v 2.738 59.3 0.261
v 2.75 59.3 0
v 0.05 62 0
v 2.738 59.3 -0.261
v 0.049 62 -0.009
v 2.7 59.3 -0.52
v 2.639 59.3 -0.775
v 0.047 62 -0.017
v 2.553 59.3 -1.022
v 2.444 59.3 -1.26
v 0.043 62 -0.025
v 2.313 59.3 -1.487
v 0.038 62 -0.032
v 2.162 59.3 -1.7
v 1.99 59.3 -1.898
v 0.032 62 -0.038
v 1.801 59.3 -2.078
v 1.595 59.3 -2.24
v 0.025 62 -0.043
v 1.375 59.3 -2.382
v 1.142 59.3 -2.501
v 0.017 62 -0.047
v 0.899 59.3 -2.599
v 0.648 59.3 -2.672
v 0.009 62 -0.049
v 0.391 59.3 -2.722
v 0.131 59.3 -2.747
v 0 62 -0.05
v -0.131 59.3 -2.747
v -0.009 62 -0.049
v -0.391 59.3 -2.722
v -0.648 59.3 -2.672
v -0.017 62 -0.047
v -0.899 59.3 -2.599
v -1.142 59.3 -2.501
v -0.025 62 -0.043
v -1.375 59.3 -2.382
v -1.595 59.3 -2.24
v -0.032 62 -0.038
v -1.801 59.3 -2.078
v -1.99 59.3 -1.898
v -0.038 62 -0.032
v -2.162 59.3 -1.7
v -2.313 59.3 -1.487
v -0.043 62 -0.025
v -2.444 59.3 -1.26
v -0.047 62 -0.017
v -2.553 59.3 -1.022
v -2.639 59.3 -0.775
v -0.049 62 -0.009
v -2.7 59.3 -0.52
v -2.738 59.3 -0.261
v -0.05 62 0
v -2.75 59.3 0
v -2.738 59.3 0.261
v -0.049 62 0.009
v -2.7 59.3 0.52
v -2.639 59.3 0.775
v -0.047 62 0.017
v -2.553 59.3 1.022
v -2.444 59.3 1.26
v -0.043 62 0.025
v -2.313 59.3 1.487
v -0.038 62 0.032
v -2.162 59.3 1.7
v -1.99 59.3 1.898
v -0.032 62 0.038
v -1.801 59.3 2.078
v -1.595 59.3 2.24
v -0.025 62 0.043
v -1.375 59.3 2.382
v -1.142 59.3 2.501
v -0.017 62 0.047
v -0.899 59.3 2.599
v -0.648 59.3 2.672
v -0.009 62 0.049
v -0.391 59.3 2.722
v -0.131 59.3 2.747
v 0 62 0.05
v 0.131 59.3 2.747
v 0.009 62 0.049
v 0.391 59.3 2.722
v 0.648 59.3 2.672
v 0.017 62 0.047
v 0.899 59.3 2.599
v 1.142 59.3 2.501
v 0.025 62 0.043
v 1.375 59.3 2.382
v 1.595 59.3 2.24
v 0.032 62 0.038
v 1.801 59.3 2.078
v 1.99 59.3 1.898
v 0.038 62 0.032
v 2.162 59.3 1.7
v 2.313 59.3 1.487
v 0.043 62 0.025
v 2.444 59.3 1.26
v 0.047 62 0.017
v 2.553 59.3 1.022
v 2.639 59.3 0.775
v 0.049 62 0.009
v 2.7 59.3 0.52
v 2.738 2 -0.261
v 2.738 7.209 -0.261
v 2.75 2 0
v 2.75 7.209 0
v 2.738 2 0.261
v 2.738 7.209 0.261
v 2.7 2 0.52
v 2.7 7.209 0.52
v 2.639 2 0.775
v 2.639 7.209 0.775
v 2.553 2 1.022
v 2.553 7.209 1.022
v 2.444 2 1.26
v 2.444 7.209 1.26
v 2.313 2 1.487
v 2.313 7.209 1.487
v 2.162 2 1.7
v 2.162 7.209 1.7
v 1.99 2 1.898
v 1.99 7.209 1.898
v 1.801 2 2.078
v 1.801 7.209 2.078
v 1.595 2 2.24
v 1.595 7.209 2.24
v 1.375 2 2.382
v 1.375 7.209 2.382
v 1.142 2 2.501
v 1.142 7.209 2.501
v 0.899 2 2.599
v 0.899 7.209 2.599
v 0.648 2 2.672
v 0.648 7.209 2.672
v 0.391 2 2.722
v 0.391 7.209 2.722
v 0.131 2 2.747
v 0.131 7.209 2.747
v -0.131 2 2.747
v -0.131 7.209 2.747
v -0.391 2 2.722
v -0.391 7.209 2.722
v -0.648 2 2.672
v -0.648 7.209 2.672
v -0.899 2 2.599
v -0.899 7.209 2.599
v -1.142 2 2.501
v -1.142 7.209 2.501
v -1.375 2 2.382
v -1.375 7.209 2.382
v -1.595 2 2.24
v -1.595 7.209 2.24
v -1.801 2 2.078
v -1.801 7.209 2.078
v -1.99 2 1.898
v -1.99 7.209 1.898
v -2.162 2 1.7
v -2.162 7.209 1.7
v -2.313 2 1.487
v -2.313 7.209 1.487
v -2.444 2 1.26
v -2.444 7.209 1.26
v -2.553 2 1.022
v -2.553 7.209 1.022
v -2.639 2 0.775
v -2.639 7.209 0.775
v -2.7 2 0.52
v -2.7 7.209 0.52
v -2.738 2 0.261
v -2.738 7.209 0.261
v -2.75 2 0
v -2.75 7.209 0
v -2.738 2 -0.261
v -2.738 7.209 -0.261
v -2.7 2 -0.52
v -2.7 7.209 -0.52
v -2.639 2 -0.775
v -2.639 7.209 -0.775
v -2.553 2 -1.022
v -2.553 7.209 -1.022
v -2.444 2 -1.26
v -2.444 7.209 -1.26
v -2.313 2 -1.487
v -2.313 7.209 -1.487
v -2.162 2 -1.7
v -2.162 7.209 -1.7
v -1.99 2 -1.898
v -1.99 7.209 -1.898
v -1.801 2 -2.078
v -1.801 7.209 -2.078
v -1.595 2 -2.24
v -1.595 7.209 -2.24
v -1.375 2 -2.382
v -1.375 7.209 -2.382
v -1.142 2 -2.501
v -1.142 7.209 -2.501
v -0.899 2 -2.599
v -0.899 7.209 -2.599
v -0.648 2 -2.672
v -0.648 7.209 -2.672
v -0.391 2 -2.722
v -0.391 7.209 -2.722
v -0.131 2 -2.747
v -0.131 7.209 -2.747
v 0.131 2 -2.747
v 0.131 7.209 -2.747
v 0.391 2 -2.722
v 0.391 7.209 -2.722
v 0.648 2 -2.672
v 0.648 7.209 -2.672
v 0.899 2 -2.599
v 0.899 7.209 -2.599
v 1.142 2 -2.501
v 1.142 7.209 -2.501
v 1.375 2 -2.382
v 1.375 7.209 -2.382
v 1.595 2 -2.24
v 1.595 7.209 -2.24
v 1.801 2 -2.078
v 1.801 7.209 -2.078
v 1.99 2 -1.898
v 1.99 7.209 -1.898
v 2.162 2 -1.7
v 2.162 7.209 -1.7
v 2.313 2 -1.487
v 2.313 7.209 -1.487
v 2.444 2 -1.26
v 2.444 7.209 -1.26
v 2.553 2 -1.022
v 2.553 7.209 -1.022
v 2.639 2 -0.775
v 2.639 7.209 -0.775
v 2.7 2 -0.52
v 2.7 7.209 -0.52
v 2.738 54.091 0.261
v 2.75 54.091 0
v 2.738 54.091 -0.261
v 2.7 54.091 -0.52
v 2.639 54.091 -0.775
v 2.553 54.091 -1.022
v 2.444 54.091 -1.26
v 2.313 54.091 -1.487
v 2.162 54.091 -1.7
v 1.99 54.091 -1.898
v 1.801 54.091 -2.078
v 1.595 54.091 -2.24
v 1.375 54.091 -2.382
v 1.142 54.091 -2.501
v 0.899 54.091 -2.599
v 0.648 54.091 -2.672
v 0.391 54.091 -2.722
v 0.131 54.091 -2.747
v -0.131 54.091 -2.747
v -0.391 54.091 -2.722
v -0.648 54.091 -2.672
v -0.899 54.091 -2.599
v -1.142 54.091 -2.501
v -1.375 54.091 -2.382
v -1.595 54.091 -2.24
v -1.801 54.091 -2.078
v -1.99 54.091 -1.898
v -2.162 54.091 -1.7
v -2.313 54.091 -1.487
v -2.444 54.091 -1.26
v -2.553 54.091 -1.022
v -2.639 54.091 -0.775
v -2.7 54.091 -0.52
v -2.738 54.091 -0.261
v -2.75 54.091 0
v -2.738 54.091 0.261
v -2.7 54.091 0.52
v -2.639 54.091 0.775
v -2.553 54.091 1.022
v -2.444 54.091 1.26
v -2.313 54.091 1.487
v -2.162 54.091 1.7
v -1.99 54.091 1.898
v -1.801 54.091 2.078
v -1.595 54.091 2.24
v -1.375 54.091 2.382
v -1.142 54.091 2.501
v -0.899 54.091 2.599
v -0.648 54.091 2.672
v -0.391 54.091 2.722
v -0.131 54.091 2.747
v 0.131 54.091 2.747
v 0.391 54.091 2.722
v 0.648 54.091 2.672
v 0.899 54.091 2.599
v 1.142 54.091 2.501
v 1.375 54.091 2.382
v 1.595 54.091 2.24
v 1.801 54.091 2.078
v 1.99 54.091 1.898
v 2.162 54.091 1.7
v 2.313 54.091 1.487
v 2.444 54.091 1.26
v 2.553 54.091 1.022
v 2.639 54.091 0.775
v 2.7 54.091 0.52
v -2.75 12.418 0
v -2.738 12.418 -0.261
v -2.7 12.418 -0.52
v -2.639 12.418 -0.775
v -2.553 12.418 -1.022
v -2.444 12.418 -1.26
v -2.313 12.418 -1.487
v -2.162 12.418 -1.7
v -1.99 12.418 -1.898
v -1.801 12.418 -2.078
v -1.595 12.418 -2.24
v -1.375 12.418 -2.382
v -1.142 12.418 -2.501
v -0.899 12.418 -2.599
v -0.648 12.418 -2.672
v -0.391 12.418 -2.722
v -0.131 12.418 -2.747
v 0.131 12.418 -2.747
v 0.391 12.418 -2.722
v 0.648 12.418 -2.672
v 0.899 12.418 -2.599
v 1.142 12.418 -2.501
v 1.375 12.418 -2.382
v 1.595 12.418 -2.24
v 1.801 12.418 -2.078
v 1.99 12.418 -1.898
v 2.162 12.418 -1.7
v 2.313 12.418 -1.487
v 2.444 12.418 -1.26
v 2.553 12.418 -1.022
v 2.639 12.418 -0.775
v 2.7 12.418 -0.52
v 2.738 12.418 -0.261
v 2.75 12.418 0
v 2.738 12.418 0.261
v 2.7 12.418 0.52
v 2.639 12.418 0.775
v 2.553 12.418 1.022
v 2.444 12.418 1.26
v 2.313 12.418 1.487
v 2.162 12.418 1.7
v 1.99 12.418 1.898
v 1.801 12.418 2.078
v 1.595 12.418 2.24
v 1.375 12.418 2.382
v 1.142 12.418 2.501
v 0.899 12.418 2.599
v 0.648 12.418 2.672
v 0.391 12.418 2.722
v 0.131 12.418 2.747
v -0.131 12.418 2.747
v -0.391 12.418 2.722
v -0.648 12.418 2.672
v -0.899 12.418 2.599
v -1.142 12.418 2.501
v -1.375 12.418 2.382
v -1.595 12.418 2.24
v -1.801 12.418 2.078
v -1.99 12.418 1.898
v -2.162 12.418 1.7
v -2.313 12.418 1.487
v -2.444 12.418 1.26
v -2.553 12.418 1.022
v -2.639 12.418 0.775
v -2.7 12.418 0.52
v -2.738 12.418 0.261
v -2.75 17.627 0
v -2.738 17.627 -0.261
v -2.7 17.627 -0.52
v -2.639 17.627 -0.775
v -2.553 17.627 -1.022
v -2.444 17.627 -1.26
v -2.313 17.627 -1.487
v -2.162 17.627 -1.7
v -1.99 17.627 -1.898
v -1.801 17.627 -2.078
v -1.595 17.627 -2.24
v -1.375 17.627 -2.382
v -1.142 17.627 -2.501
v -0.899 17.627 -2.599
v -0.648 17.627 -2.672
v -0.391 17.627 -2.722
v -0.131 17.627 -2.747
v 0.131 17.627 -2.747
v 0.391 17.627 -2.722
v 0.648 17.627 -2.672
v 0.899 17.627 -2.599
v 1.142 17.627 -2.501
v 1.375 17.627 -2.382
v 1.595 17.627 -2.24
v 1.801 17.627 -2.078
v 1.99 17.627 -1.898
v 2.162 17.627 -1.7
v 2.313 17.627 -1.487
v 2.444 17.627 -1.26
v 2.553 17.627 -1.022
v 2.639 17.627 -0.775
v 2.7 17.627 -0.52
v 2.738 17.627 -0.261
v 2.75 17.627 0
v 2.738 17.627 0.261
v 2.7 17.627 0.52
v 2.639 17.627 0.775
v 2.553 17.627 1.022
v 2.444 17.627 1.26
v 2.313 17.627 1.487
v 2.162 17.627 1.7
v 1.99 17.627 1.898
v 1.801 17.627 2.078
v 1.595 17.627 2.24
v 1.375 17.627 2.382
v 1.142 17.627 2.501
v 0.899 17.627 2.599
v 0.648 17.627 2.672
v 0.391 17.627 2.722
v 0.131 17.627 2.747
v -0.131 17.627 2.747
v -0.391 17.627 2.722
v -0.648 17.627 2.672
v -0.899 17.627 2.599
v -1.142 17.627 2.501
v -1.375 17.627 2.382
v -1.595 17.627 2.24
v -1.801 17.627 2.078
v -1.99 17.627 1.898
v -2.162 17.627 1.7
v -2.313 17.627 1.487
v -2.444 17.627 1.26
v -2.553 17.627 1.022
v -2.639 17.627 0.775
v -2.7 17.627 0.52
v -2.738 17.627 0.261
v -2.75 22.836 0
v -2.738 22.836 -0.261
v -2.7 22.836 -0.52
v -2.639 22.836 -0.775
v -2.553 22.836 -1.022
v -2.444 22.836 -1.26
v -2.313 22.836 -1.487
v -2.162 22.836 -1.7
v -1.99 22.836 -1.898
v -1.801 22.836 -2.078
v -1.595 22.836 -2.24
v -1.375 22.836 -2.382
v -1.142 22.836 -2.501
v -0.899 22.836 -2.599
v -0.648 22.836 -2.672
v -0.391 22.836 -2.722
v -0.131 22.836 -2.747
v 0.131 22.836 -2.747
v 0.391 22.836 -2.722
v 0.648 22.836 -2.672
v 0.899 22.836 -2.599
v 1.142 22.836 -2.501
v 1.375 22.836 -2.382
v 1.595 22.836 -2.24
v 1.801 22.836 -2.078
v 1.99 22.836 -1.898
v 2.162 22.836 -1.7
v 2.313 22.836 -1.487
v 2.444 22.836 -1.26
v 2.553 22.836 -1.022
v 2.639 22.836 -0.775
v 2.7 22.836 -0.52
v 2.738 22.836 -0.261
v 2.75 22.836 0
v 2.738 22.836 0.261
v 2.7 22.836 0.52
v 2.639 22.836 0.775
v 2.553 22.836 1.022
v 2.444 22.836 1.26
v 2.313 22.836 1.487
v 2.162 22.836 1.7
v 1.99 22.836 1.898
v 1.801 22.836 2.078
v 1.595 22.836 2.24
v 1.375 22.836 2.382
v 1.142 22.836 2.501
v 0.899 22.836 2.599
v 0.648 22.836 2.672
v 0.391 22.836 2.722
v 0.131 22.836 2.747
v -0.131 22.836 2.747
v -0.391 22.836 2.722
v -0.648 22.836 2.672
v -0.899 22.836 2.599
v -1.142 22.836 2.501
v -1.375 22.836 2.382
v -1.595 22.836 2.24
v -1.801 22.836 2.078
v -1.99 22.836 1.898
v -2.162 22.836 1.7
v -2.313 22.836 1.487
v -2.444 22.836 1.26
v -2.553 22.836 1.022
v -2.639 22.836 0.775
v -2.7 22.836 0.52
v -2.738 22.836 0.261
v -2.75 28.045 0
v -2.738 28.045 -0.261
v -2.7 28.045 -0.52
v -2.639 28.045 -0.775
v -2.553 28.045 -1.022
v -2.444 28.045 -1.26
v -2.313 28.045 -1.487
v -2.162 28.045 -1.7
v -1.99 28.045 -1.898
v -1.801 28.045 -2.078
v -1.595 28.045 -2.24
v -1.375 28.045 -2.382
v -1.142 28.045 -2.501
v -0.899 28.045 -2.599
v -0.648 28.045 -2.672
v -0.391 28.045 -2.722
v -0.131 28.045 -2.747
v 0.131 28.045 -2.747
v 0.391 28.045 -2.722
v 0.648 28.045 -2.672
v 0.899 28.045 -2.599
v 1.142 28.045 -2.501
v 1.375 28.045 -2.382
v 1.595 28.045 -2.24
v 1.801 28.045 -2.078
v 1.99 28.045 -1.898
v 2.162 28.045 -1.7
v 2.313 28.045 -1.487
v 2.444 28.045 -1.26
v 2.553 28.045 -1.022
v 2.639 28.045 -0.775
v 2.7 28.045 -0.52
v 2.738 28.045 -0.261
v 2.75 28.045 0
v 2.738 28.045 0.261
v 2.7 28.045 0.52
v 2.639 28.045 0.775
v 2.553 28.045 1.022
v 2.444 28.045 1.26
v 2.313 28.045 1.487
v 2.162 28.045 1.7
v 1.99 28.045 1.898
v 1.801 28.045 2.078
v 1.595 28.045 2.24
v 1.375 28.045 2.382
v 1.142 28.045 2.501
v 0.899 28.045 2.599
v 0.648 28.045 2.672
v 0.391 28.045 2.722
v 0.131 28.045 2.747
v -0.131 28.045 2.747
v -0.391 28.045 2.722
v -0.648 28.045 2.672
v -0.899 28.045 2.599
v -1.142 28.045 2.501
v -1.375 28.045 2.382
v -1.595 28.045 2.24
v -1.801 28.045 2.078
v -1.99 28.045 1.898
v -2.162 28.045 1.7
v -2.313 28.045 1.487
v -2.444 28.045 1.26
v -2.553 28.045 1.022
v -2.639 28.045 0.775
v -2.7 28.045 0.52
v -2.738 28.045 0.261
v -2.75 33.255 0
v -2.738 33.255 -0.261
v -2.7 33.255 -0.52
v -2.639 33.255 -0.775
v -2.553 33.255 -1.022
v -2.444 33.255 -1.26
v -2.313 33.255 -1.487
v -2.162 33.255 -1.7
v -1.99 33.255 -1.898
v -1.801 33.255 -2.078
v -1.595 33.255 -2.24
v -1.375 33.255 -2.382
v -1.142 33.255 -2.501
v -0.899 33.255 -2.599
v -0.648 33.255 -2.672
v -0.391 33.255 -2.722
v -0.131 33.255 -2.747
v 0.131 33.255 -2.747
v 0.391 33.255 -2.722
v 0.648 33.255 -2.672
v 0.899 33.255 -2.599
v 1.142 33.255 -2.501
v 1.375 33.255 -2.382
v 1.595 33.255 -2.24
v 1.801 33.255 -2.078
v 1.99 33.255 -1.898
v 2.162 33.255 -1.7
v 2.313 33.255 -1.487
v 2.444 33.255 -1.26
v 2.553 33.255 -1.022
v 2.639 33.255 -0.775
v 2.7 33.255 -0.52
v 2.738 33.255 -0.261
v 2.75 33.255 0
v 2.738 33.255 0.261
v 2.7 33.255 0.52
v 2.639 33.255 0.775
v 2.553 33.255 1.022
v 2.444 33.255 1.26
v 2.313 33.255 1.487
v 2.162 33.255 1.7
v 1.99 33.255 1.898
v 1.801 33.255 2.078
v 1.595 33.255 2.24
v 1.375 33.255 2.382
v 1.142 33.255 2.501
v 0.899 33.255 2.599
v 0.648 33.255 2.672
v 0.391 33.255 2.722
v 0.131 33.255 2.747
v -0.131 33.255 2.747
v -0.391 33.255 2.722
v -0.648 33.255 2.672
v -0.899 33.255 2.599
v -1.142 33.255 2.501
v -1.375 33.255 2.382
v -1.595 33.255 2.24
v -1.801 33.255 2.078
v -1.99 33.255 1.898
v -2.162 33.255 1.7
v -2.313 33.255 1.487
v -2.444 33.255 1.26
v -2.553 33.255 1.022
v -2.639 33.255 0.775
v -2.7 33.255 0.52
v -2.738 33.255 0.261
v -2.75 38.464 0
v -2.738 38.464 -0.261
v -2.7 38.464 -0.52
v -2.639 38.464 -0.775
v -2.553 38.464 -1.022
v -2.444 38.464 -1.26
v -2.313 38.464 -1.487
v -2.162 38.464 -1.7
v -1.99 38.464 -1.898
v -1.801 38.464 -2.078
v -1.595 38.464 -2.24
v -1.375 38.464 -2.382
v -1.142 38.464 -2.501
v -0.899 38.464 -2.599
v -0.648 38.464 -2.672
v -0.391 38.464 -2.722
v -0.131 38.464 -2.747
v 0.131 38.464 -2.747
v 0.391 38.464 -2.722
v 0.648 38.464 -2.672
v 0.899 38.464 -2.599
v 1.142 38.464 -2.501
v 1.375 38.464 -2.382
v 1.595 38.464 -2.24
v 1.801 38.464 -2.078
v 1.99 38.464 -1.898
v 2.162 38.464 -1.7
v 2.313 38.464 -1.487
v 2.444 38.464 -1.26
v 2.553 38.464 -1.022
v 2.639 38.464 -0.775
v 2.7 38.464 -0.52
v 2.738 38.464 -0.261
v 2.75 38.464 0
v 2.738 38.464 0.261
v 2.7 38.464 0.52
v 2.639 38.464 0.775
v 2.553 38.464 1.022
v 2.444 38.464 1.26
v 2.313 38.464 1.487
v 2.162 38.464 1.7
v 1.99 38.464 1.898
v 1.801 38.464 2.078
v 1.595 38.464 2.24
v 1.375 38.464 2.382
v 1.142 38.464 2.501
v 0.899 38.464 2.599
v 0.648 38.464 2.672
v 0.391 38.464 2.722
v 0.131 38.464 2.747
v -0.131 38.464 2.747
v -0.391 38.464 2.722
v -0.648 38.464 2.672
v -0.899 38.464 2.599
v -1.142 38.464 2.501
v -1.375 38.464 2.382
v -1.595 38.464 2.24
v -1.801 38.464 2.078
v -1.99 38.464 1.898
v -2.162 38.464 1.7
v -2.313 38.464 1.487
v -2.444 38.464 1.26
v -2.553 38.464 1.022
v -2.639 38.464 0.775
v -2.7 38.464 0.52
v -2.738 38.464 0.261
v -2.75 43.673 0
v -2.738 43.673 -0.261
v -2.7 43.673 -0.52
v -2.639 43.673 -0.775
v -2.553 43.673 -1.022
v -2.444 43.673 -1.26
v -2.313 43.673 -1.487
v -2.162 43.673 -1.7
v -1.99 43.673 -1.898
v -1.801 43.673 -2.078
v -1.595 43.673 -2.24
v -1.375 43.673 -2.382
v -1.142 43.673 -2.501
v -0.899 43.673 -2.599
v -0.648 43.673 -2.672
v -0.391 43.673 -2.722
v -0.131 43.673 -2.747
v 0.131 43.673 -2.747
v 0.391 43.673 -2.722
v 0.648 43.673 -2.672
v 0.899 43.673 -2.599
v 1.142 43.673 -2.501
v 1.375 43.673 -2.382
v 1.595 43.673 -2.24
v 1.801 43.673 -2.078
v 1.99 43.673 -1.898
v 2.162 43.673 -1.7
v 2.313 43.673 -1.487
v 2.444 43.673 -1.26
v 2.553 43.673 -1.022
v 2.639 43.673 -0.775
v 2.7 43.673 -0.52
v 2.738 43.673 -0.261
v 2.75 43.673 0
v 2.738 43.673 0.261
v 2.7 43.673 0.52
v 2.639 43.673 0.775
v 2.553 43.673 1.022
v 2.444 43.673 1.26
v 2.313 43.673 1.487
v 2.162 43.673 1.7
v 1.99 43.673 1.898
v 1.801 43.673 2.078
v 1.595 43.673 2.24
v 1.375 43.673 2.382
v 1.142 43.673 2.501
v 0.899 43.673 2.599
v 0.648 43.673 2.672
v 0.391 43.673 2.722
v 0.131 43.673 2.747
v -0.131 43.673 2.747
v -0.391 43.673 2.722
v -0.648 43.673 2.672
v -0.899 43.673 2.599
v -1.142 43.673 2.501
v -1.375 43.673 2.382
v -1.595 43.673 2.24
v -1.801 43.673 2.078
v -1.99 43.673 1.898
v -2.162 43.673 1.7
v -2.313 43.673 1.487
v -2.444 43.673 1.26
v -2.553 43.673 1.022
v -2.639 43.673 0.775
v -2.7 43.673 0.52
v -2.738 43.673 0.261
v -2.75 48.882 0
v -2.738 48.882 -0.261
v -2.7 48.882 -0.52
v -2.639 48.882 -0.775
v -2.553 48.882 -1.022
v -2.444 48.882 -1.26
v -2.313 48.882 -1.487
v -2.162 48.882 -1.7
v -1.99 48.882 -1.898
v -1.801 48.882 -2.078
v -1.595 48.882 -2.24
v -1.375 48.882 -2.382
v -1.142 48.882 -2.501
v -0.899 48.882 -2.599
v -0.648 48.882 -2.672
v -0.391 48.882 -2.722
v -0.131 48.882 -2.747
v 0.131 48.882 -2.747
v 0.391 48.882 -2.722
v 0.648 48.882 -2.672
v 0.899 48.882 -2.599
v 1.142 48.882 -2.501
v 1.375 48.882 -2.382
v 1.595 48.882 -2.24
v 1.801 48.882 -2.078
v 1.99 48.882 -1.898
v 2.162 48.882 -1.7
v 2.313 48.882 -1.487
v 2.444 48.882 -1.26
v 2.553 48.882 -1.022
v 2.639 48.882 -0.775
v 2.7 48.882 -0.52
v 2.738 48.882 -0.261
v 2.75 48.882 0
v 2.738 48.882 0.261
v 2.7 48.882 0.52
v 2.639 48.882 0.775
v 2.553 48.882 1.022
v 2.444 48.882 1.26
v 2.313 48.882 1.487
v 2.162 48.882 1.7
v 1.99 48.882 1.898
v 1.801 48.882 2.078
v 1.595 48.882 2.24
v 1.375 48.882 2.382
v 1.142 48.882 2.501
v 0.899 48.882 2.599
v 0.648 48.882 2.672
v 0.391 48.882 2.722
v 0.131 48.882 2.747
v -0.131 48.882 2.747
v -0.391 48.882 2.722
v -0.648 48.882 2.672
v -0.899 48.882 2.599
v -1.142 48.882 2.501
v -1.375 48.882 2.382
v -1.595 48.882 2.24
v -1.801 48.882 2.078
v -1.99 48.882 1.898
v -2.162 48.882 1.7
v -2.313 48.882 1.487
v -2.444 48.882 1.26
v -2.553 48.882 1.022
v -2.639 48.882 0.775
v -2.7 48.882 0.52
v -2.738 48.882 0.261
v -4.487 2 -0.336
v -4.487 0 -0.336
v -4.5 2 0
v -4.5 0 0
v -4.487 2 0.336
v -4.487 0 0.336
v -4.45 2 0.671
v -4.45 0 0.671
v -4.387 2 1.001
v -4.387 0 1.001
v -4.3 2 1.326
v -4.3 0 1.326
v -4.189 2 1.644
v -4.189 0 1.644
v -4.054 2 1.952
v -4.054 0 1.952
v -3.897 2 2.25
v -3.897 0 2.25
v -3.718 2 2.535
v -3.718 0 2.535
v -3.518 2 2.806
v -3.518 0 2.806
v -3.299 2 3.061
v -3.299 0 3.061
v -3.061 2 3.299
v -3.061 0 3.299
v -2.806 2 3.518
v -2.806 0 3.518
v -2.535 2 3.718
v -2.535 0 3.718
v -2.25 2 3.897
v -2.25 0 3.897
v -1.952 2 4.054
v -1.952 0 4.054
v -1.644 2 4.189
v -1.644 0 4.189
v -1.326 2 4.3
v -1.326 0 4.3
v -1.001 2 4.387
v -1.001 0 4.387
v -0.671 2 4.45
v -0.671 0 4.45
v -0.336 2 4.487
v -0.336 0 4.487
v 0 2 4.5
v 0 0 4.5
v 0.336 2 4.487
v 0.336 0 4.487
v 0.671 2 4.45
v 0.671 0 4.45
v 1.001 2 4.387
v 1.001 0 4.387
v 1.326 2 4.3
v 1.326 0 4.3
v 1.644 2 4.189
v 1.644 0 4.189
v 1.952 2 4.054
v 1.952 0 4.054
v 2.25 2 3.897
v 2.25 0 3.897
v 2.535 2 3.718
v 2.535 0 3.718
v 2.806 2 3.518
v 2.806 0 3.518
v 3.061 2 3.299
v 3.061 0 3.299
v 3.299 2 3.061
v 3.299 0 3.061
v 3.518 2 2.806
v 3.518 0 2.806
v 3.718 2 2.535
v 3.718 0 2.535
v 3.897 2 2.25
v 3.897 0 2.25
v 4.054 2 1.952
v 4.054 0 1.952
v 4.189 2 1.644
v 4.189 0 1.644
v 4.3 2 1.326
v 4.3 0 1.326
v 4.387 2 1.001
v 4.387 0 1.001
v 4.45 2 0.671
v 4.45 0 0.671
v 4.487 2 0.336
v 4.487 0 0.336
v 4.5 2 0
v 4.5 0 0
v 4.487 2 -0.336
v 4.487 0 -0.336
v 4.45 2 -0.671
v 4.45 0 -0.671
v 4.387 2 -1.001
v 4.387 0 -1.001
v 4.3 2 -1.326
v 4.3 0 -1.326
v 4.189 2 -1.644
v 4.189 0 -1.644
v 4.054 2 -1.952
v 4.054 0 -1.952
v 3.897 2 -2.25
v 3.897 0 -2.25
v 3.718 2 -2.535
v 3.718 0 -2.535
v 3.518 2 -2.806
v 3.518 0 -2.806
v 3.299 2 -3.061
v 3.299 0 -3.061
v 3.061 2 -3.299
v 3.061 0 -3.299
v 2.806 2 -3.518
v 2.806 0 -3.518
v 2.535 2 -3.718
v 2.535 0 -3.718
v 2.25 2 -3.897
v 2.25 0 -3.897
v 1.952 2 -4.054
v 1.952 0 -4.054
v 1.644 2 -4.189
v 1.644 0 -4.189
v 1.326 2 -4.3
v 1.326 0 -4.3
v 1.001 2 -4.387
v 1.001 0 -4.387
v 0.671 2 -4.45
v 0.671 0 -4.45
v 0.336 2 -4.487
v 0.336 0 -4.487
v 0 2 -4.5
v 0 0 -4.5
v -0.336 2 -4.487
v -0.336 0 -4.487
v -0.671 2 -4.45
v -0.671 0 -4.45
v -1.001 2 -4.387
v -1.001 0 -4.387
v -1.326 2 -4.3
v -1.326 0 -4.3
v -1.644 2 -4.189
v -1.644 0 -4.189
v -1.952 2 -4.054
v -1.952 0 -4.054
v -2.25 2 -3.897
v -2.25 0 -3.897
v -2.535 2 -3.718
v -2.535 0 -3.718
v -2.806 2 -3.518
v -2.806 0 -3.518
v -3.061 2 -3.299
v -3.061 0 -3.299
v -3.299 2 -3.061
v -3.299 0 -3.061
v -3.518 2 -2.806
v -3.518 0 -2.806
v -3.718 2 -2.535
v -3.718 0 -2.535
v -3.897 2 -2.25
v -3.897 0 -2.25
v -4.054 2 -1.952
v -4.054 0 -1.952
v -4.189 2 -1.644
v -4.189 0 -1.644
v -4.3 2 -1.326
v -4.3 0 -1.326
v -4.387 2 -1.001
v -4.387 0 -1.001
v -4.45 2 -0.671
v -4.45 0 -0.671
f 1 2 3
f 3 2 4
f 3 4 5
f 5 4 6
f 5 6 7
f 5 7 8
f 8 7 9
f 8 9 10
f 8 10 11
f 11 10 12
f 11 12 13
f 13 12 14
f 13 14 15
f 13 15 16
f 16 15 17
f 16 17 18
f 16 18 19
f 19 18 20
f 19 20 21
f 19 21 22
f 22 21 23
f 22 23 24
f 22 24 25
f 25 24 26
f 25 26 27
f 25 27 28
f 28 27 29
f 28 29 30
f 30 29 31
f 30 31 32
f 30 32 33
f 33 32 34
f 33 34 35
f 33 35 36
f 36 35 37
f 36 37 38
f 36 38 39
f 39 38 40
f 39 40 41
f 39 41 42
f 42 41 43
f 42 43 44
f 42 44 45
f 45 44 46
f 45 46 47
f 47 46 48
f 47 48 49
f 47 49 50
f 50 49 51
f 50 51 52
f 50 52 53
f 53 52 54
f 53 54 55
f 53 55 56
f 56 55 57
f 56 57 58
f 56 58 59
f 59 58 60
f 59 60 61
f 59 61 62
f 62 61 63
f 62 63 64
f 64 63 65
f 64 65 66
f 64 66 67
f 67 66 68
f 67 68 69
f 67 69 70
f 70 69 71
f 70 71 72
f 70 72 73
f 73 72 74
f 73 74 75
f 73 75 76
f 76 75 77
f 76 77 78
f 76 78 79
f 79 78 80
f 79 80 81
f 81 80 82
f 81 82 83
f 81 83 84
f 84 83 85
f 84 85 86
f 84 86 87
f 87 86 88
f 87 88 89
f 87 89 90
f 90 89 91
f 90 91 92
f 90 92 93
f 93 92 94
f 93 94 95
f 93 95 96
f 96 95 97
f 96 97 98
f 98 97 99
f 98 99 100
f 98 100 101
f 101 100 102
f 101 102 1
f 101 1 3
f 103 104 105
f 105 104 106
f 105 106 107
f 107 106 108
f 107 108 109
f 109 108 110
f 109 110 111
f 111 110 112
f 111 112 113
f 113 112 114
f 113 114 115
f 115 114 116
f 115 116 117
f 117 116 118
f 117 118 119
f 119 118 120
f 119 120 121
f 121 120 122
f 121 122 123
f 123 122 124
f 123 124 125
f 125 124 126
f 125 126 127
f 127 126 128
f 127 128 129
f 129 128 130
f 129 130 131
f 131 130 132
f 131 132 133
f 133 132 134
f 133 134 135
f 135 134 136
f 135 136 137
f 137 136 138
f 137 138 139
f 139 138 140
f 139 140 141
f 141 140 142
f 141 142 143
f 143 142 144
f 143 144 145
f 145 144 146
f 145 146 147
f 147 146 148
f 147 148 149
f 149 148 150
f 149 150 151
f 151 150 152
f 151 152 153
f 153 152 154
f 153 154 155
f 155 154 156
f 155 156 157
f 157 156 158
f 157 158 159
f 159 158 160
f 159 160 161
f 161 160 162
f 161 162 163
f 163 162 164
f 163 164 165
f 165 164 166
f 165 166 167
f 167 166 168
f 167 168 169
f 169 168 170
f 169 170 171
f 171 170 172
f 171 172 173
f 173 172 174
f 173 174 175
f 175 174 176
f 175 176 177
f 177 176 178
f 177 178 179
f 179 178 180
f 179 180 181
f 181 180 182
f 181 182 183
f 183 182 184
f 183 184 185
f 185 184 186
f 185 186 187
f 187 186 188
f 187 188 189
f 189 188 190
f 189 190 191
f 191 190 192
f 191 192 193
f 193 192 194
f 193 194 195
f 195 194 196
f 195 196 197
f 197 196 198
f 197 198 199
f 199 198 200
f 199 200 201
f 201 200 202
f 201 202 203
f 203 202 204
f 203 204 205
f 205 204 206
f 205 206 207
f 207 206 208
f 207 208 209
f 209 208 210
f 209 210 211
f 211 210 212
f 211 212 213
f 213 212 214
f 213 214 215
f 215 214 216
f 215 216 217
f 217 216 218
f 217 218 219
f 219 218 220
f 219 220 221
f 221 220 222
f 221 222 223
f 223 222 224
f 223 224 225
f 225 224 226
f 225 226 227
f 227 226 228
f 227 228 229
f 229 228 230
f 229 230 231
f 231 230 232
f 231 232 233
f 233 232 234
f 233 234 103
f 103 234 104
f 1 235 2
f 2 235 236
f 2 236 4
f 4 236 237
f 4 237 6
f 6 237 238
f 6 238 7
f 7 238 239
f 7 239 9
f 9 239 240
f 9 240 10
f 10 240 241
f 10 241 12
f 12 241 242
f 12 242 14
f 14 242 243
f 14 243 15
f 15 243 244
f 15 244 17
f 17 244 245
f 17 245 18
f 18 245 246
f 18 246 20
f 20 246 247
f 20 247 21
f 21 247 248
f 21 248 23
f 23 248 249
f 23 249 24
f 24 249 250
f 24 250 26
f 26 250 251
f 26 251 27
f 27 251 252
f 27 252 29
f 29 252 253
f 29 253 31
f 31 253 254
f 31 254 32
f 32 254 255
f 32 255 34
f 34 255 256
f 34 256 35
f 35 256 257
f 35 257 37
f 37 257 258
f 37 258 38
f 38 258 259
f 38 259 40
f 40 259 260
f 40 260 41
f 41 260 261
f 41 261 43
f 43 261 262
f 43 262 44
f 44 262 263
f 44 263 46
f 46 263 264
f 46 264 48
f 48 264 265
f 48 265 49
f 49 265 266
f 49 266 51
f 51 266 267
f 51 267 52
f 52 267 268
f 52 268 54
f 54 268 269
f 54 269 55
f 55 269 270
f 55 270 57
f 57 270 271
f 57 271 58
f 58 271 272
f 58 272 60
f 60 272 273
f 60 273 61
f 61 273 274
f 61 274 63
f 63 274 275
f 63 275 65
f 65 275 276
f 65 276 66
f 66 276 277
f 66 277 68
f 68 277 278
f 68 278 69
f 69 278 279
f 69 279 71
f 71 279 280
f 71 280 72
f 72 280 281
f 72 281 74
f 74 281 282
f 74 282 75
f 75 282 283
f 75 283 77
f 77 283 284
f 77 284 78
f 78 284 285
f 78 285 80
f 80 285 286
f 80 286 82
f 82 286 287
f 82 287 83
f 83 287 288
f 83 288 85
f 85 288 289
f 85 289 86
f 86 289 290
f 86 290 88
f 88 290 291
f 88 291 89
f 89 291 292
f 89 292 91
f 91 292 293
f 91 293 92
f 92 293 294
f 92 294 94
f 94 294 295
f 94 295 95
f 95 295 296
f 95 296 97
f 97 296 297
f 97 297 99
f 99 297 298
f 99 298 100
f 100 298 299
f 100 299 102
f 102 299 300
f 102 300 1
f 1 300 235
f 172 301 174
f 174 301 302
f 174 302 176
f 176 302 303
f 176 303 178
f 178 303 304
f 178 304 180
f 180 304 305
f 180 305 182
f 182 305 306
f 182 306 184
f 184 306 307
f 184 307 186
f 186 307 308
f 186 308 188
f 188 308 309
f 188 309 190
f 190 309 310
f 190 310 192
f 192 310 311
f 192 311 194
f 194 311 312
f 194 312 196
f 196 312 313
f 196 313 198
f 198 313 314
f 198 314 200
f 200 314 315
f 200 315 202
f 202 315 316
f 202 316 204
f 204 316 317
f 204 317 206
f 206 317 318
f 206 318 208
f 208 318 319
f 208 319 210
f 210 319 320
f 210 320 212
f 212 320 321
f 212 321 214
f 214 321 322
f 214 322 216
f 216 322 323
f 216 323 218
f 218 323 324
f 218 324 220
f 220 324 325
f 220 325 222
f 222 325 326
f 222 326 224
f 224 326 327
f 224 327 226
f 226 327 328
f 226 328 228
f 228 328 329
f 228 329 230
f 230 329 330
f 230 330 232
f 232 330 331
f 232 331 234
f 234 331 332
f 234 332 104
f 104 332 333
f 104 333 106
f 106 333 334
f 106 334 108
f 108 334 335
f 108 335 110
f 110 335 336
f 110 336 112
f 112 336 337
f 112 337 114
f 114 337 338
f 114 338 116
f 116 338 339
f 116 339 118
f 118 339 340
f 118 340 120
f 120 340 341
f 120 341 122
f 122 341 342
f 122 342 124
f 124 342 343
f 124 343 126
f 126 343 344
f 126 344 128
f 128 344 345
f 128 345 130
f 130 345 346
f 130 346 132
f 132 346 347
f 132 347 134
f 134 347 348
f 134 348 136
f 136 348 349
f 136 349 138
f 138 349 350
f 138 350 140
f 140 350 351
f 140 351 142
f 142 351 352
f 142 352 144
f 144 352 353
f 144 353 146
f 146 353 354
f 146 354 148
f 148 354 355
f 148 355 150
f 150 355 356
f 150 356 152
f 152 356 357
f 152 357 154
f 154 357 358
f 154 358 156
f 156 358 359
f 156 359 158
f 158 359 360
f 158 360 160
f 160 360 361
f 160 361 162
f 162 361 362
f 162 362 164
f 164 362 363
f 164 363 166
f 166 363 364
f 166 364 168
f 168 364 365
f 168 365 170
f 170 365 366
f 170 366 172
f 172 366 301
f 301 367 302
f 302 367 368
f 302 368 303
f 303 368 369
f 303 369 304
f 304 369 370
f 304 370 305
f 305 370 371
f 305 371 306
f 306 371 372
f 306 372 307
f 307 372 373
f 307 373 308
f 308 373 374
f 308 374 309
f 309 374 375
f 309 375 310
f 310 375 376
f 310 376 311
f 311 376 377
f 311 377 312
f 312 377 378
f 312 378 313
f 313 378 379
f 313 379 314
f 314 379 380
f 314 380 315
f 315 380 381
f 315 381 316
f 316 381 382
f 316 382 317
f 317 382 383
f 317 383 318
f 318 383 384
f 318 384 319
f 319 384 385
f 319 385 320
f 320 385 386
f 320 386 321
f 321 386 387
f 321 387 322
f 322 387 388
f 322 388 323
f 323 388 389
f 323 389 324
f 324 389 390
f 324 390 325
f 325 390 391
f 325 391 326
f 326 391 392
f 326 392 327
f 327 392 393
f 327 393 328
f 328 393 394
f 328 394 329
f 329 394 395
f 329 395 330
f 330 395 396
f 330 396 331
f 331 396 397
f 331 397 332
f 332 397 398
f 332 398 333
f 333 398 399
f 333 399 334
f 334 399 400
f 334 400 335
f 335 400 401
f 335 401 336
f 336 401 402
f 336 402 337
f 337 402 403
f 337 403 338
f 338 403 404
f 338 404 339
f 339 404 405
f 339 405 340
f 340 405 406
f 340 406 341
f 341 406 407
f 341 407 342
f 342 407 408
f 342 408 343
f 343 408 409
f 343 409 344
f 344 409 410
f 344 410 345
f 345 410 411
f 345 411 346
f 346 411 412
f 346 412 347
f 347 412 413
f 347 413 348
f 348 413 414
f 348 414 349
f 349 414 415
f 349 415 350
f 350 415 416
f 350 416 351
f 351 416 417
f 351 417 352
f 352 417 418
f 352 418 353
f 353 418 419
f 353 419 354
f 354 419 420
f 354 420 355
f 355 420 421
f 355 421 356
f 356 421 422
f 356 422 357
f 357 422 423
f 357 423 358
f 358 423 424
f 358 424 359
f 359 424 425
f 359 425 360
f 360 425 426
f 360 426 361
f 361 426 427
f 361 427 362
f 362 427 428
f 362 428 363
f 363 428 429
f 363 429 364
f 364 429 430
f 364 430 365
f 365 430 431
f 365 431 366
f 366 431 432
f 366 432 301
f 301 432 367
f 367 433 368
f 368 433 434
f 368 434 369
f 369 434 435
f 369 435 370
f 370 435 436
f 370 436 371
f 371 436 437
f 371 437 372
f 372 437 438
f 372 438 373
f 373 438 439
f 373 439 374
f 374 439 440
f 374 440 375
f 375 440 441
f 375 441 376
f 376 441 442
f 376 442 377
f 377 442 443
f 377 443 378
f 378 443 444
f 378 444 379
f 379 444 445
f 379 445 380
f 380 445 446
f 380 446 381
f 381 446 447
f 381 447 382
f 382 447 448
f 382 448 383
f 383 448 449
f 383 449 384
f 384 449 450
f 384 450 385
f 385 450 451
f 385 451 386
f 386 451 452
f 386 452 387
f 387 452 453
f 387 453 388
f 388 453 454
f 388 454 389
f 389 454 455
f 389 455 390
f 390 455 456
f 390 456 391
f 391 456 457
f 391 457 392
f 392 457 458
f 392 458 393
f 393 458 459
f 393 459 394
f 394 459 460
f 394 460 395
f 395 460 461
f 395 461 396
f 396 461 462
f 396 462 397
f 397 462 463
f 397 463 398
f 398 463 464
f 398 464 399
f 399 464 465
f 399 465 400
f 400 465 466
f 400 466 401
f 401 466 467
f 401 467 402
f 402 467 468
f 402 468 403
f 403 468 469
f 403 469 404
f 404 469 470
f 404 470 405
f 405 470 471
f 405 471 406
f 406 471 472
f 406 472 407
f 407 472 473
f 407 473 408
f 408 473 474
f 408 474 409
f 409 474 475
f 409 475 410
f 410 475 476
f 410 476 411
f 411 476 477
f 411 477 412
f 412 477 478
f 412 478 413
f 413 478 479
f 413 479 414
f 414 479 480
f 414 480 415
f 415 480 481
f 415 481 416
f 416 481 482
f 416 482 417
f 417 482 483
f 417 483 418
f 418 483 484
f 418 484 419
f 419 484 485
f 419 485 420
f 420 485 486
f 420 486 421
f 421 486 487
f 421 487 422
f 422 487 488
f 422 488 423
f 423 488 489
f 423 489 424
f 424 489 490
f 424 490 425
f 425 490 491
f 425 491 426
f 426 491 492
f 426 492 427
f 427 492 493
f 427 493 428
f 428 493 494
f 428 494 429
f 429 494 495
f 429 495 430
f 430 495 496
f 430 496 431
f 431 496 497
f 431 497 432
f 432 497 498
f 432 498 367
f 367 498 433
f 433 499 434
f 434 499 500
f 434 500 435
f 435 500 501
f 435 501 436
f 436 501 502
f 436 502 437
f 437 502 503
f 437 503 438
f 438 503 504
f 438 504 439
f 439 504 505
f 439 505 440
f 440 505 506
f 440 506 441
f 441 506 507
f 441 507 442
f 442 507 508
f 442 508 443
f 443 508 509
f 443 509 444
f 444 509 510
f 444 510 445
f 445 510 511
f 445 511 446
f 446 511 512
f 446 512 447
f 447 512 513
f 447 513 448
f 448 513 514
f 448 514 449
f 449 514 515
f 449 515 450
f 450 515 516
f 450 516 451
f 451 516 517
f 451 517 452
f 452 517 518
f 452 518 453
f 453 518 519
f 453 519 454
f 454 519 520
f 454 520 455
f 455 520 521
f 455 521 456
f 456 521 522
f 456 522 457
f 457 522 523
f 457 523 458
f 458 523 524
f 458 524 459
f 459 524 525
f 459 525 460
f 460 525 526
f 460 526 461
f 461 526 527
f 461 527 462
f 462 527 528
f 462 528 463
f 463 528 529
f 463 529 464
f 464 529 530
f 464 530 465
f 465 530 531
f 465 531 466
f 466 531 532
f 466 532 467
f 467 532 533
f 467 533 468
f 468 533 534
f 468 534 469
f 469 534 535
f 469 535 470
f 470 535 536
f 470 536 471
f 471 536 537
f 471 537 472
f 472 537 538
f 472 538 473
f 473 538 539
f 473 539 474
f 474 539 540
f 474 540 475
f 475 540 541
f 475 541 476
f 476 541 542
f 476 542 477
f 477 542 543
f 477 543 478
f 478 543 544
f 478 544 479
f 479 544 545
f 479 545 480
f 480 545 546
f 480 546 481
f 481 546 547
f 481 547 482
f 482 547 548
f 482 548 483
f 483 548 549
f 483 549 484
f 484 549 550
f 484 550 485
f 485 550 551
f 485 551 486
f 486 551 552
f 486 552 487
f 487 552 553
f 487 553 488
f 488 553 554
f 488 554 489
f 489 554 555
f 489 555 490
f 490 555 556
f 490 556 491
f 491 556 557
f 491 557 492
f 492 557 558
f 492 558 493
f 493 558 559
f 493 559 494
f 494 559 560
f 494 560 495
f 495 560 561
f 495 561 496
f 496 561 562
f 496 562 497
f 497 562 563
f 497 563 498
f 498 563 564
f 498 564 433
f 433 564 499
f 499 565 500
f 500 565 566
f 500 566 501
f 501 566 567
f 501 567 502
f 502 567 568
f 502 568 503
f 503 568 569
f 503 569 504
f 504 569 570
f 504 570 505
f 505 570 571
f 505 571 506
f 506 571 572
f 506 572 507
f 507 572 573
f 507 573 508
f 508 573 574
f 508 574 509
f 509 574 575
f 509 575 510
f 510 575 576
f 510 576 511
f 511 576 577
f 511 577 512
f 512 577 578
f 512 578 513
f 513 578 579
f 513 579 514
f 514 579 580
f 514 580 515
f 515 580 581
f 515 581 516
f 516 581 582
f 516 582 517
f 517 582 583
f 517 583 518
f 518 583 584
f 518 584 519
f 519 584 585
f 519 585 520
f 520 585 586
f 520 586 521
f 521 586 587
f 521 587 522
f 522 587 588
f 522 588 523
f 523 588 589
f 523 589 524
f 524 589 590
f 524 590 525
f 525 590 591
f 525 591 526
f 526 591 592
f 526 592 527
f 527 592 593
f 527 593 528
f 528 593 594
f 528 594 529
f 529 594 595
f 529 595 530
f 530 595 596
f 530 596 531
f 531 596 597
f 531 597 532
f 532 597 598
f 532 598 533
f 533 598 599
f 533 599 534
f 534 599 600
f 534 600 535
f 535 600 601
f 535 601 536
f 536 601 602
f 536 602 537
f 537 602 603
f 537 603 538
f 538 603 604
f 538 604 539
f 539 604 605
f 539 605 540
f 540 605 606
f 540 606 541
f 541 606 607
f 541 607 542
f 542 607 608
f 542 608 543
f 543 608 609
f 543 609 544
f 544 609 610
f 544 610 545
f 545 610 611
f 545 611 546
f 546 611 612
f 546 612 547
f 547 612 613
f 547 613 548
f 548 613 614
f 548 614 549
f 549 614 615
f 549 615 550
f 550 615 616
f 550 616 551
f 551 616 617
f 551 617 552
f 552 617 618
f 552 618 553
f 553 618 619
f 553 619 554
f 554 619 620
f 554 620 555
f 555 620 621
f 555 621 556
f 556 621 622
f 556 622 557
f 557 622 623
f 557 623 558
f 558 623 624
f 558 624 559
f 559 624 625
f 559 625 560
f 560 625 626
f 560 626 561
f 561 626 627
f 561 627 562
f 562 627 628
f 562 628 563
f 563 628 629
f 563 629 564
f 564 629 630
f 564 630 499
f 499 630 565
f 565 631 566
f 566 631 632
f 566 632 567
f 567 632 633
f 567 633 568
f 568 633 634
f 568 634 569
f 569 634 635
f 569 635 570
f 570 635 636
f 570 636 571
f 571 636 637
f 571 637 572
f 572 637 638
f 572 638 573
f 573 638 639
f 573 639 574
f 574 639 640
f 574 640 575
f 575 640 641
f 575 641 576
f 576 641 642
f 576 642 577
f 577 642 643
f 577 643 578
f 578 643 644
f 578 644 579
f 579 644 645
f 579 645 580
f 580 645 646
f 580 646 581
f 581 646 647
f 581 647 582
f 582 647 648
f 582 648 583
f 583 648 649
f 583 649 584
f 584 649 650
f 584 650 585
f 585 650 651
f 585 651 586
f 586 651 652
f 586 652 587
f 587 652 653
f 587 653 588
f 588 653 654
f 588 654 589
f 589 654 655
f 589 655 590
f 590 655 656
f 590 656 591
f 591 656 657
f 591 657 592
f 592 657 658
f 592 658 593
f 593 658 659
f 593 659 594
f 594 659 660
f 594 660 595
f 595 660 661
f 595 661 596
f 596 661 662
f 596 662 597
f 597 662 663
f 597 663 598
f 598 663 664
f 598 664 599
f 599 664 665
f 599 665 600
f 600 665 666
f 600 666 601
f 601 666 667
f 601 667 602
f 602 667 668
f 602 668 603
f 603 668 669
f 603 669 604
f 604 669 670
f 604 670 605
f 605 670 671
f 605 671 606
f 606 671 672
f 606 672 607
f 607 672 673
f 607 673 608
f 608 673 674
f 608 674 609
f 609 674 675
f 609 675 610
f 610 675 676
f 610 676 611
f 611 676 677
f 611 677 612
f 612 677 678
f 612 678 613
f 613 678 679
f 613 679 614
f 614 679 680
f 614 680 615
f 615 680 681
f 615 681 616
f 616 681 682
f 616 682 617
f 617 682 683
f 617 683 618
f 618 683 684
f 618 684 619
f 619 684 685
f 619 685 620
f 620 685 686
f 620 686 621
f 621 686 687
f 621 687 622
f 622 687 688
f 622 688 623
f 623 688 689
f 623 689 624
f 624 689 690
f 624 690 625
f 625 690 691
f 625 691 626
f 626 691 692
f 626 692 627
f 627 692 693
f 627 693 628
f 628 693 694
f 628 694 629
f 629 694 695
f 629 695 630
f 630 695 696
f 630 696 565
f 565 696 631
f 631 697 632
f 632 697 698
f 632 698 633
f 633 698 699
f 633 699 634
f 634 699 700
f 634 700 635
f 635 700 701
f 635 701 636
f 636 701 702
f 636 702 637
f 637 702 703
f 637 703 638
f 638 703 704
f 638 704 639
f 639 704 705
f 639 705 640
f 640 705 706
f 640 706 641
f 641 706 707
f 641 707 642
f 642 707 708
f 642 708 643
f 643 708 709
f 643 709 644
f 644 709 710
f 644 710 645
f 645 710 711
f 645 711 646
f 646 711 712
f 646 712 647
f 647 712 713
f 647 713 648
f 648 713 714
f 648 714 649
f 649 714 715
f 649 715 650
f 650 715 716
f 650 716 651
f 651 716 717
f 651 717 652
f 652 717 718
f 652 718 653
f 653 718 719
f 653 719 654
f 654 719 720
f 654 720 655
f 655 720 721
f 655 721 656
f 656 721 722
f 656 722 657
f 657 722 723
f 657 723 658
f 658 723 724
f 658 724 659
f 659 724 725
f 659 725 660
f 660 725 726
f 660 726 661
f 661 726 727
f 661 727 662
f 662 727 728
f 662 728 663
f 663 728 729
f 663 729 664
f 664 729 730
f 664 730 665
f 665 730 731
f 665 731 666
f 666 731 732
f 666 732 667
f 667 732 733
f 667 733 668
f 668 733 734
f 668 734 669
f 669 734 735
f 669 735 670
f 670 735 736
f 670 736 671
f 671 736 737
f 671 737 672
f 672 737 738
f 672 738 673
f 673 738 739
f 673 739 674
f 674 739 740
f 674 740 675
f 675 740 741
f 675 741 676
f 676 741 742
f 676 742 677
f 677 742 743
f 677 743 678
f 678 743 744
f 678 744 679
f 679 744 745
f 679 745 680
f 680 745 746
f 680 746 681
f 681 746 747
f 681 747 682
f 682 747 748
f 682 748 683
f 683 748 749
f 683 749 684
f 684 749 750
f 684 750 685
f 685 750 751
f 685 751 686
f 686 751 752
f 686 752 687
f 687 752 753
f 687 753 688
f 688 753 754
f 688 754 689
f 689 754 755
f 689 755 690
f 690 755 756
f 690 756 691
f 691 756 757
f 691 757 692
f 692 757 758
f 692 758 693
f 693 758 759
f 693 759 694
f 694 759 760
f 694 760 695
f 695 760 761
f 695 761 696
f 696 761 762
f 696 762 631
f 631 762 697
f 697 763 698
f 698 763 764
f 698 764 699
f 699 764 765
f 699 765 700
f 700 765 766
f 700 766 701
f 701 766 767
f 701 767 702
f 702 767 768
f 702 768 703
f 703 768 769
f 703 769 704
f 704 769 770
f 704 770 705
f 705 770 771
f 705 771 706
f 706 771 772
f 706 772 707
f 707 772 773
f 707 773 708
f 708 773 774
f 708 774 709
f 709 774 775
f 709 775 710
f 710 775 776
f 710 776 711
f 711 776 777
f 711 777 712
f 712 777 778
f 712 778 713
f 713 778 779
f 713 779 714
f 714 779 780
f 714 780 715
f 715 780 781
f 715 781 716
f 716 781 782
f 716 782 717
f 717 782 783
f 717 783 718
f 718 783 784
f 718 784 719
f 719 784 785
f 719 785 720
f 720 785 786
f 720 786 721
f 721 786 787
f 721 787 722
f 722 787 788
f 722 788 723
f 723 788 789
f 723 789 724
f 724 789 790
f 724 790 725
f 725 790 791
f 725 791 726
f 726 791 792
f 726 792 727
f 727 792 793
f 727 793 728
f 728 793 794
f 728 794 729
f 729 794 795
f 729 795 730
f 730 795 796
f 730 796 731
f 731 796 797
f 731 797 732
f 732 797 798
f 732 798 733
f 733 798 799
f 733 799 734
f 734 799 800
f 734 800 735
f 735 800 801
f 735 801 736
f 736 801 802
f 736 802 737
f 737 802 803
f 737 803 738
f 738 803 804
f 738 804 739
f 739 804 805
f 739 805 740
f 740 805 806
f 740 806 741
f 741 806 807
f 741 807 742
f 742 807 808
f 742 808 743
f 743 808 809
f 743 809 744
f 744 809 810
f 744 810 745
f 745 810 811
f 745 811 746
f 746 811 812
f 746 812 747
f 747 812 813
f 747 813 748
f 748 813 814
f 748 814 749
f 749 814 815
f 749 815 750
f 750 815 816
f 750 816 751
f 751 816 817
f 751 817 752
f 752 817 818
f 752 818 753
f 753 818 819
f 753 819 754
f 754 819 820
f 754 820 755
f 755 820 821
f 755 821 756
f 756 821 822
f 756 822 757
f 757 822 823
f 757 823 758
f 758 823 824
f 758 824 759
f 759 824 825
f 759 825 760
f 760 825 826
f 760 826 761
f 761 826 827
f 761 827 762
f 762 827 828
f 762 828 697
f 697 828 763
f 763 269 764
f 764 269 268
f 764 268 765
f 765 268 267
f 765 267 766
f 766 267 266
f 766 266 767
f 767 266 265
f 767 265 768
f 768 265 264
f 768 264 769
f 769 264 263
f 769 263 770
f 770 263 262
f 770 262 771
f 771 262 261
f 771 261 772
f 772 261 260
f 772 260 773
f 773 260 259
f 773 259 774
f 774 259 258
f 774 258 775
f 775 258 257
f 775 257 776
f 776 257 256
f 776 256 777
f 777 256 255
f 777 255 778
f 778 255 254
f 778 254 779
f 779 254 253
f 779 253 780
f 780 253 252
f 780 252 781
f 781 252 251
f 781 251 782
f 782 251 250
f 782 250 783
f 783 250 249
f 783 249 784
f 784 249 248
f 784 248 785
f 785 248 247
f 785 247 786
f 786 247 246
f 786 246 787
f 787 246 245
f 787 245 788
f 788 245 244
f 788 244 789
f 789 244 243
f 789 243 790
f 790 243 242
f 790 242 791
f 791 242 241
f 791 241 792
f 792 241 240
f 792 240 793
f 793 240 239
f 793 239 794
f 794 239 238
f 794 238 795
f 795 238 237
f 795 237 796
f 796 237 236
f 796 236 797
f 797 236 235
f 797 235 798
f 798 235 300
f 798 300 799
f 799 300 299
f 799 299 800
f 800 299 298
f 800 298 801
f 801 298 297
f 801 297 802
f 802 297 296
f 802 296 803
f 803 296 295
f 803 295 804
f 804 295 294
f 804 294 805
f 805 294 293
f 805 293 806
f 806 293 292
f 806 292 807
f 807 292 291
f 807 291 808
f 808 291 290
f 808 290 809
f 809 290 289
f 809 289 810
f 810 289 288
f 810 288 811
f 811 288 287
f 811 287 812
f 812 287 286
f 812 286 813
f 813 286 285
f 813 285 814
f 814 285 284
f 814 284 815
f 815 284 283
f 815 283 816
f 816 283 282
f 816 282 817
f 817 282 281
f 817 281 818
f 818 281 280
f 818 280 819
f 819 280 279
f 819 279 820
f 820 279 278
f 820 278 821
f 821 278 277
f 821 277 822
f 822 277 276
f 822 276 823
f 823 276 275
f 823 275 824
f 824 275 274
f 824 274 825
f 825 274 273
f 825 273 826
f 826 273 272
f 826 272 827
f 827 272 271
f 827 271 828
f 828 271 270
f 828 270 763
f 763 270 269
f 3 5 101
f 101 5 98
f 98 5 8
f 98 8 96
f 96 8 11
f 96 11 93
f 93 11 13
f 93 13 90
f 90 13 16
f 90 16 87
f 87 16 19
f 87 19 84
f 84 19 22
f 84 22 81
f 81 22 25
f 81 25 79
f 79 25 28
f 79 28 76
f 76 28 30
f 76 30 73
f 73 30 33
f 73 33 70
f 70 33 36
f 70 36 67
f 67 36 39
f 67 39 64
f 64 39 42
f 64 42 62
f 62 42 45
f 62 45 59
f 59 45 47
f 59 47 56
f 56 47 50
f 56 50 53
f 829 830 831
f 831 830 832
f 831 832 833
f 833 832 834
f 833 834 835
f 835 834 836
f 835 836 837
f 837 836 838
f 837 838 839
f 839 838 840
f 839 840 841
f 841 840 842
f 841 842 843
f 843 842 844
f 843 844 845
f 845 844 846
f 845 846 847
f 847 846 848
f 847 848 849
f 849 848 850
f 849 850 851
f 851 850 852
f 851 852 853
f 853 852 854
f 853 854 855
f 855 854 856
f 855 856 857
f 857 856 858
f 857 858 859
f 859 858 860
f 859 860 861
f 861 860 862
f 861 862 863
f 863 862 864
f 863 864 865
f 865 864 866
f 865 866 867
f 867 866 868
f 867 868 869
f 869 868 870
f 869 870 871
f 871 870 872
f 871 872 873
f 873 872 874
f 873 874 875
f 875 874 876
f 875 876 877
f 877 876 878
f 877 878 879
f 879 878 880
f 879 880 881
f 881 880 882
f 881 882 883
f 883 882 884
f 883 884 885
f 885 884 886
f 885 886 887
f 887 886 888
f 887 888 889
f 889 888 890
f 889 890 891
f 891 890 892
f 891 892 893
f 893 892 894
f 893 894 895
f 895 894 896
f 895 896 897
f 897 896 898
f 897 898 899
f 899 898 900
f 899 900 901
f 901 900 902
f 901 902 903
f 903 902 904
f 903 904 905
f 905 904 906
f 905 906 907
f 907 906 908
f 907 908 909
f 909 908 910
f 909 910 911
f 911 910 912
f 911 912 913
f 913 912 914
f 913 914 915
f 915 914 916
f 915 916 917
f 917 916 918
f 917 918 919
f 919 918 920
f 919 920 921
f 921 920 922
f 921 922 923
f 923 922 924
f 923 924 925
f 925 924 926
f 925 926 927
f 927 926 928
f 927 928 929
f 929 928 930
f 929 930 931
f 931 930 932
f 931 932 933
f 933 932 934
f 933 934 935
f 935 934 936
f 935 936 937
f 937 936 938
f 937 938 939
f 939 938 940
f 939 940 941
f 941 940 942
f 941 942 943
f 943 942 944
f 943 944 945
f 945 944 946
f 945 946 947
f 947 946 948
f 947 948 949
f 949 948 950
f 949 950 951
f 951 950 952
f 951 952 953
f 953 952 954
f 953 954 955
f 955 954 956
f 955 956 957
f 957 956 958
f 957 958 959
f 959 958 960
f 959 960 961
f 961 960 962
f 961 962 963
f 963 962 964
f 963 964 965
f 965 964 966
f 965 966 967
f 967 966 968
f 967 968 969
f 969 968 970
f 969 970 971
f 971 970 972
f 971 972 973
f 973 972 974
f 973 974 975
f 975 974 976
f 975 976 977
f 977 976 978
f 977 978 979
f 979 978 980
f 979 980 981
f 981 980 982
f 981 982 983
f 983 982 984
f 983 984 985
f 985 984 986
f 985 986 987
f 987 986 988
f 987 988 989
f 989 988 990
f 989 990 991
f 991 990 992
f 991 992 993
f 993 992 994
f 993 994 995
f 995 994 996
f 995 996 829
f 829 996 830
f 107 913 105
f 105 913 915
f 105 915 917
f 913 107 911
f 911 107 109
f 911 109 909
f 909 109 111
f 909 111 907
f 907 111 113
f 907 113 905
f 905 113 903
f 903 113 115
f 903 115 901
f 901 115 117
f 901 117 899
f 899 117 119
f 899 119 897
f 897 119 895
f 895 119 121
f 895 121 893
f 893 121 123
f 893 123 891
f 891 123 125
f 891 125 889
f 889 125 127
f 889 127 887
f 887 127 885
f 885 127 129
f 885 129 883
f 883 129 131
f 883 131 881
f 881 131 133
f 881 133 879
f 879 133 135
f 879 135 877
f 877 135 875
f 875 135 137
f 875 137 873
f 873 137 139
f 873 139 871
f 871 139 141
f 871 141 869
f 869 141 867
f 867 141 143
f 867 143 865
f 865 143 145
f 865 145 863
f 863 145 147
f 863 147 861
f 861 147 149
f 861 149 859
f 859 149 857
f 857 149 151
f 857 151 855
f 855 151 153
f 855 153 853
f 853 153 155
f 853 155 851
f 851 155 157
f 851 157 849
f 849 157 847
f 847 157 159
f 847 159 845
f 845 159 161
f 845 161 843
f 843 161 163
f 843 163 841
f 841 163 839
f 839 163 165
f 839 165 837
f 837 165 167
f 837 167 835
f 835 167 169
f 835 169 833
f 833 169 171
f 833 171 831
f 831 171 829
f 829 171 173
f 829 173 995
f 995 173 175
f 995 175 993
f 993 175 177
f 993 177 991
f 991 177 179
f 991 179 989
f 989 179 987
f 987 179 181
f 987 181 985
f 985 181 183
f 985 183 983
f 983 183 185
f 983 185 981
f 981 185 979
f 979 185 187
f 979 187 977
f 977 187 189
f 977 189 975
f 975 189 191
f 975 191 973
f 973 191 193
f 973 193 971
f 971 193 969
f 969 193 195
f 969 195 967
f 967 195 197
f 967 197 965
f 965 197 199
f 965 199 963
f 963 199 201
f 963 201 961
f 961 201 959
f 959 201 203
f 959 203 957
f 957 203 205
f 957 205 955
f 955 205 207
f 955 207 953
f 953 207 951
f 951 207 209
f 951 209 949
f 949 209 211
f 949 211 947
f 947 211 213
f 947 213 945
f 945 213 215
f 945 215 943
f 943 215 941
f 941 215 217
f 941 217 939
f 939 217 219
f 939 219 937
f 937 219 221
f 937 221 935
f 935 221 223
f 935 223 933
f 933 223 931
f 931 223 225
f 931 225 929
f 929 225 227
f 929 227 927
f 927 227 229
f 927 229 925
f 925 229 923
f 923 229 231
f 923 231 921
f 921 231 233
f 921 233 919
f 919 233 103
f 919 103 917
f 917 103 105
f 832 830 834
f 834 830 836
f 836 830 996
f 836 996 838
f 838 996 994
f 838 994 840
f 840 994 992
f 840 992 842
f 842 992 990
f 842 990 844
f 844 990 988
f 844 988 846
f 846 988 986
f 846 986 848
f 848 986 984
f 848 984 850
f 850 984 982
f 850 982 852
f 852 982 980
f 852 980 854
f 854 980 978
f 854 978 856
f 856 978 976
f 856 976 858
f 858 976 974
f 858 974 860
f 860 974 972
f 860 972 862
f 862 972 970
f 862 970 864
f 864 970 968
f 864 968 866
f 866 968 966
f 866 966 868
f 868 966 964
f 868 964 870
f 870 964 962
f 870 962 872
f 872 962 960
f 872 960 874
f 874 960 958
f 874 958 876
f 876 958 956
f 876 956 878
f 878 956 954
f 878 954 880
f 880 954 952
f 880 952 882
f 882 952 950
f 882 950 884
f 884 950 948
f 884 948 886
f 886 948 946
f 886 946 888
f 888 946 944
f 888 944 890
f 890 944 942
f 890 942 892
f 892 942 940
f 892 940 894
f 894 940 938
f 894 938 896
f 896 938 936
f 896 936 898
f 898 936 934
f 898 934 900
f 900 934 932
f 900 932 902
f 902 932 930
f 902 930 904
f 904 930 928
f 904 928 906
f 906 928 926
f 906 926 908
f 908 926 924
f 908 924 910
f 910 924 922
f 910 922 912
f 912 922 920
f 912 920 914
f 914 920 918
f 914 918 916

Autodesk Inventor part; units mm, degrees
ref_plane "YZ Plane" through (0, 0, 0) normal (1, 0, 0) x (0, 1, 0)
ref_plane "XZ Plane" through (0, 0, 0) normal (0, 1, 0) x (-1, 0, 0)
ref_plane "XY Plane" through (0, 0, 0) normal (0, 0, 1) x (1, 0, 0)
sketch "Sketch1" plane through (0, 0, 0) normal (0, 1, 0) x (-1, 0, 0)
  circle A0 centre (0, 0) radius 4.5
  dimension "d0" = 9
extrude "Extrusion1" add sketch "Sketch1" along normal blind 2
sketch "Sketch2" plane through (0, 2, 0) normal (0, 1, 0) x (1, 0, 0)
  circle A0 centre (0, 0) radius 2.75
  dimension "d3" = 5.5
extrude "Extrusion2" add sketch "Sketch2" along normal blind 60
chamfer "Chamfer1" distance 2.7 angle 45 1 edges at (-2.75, 62, 0)
properties part number "Fan_Pin"
